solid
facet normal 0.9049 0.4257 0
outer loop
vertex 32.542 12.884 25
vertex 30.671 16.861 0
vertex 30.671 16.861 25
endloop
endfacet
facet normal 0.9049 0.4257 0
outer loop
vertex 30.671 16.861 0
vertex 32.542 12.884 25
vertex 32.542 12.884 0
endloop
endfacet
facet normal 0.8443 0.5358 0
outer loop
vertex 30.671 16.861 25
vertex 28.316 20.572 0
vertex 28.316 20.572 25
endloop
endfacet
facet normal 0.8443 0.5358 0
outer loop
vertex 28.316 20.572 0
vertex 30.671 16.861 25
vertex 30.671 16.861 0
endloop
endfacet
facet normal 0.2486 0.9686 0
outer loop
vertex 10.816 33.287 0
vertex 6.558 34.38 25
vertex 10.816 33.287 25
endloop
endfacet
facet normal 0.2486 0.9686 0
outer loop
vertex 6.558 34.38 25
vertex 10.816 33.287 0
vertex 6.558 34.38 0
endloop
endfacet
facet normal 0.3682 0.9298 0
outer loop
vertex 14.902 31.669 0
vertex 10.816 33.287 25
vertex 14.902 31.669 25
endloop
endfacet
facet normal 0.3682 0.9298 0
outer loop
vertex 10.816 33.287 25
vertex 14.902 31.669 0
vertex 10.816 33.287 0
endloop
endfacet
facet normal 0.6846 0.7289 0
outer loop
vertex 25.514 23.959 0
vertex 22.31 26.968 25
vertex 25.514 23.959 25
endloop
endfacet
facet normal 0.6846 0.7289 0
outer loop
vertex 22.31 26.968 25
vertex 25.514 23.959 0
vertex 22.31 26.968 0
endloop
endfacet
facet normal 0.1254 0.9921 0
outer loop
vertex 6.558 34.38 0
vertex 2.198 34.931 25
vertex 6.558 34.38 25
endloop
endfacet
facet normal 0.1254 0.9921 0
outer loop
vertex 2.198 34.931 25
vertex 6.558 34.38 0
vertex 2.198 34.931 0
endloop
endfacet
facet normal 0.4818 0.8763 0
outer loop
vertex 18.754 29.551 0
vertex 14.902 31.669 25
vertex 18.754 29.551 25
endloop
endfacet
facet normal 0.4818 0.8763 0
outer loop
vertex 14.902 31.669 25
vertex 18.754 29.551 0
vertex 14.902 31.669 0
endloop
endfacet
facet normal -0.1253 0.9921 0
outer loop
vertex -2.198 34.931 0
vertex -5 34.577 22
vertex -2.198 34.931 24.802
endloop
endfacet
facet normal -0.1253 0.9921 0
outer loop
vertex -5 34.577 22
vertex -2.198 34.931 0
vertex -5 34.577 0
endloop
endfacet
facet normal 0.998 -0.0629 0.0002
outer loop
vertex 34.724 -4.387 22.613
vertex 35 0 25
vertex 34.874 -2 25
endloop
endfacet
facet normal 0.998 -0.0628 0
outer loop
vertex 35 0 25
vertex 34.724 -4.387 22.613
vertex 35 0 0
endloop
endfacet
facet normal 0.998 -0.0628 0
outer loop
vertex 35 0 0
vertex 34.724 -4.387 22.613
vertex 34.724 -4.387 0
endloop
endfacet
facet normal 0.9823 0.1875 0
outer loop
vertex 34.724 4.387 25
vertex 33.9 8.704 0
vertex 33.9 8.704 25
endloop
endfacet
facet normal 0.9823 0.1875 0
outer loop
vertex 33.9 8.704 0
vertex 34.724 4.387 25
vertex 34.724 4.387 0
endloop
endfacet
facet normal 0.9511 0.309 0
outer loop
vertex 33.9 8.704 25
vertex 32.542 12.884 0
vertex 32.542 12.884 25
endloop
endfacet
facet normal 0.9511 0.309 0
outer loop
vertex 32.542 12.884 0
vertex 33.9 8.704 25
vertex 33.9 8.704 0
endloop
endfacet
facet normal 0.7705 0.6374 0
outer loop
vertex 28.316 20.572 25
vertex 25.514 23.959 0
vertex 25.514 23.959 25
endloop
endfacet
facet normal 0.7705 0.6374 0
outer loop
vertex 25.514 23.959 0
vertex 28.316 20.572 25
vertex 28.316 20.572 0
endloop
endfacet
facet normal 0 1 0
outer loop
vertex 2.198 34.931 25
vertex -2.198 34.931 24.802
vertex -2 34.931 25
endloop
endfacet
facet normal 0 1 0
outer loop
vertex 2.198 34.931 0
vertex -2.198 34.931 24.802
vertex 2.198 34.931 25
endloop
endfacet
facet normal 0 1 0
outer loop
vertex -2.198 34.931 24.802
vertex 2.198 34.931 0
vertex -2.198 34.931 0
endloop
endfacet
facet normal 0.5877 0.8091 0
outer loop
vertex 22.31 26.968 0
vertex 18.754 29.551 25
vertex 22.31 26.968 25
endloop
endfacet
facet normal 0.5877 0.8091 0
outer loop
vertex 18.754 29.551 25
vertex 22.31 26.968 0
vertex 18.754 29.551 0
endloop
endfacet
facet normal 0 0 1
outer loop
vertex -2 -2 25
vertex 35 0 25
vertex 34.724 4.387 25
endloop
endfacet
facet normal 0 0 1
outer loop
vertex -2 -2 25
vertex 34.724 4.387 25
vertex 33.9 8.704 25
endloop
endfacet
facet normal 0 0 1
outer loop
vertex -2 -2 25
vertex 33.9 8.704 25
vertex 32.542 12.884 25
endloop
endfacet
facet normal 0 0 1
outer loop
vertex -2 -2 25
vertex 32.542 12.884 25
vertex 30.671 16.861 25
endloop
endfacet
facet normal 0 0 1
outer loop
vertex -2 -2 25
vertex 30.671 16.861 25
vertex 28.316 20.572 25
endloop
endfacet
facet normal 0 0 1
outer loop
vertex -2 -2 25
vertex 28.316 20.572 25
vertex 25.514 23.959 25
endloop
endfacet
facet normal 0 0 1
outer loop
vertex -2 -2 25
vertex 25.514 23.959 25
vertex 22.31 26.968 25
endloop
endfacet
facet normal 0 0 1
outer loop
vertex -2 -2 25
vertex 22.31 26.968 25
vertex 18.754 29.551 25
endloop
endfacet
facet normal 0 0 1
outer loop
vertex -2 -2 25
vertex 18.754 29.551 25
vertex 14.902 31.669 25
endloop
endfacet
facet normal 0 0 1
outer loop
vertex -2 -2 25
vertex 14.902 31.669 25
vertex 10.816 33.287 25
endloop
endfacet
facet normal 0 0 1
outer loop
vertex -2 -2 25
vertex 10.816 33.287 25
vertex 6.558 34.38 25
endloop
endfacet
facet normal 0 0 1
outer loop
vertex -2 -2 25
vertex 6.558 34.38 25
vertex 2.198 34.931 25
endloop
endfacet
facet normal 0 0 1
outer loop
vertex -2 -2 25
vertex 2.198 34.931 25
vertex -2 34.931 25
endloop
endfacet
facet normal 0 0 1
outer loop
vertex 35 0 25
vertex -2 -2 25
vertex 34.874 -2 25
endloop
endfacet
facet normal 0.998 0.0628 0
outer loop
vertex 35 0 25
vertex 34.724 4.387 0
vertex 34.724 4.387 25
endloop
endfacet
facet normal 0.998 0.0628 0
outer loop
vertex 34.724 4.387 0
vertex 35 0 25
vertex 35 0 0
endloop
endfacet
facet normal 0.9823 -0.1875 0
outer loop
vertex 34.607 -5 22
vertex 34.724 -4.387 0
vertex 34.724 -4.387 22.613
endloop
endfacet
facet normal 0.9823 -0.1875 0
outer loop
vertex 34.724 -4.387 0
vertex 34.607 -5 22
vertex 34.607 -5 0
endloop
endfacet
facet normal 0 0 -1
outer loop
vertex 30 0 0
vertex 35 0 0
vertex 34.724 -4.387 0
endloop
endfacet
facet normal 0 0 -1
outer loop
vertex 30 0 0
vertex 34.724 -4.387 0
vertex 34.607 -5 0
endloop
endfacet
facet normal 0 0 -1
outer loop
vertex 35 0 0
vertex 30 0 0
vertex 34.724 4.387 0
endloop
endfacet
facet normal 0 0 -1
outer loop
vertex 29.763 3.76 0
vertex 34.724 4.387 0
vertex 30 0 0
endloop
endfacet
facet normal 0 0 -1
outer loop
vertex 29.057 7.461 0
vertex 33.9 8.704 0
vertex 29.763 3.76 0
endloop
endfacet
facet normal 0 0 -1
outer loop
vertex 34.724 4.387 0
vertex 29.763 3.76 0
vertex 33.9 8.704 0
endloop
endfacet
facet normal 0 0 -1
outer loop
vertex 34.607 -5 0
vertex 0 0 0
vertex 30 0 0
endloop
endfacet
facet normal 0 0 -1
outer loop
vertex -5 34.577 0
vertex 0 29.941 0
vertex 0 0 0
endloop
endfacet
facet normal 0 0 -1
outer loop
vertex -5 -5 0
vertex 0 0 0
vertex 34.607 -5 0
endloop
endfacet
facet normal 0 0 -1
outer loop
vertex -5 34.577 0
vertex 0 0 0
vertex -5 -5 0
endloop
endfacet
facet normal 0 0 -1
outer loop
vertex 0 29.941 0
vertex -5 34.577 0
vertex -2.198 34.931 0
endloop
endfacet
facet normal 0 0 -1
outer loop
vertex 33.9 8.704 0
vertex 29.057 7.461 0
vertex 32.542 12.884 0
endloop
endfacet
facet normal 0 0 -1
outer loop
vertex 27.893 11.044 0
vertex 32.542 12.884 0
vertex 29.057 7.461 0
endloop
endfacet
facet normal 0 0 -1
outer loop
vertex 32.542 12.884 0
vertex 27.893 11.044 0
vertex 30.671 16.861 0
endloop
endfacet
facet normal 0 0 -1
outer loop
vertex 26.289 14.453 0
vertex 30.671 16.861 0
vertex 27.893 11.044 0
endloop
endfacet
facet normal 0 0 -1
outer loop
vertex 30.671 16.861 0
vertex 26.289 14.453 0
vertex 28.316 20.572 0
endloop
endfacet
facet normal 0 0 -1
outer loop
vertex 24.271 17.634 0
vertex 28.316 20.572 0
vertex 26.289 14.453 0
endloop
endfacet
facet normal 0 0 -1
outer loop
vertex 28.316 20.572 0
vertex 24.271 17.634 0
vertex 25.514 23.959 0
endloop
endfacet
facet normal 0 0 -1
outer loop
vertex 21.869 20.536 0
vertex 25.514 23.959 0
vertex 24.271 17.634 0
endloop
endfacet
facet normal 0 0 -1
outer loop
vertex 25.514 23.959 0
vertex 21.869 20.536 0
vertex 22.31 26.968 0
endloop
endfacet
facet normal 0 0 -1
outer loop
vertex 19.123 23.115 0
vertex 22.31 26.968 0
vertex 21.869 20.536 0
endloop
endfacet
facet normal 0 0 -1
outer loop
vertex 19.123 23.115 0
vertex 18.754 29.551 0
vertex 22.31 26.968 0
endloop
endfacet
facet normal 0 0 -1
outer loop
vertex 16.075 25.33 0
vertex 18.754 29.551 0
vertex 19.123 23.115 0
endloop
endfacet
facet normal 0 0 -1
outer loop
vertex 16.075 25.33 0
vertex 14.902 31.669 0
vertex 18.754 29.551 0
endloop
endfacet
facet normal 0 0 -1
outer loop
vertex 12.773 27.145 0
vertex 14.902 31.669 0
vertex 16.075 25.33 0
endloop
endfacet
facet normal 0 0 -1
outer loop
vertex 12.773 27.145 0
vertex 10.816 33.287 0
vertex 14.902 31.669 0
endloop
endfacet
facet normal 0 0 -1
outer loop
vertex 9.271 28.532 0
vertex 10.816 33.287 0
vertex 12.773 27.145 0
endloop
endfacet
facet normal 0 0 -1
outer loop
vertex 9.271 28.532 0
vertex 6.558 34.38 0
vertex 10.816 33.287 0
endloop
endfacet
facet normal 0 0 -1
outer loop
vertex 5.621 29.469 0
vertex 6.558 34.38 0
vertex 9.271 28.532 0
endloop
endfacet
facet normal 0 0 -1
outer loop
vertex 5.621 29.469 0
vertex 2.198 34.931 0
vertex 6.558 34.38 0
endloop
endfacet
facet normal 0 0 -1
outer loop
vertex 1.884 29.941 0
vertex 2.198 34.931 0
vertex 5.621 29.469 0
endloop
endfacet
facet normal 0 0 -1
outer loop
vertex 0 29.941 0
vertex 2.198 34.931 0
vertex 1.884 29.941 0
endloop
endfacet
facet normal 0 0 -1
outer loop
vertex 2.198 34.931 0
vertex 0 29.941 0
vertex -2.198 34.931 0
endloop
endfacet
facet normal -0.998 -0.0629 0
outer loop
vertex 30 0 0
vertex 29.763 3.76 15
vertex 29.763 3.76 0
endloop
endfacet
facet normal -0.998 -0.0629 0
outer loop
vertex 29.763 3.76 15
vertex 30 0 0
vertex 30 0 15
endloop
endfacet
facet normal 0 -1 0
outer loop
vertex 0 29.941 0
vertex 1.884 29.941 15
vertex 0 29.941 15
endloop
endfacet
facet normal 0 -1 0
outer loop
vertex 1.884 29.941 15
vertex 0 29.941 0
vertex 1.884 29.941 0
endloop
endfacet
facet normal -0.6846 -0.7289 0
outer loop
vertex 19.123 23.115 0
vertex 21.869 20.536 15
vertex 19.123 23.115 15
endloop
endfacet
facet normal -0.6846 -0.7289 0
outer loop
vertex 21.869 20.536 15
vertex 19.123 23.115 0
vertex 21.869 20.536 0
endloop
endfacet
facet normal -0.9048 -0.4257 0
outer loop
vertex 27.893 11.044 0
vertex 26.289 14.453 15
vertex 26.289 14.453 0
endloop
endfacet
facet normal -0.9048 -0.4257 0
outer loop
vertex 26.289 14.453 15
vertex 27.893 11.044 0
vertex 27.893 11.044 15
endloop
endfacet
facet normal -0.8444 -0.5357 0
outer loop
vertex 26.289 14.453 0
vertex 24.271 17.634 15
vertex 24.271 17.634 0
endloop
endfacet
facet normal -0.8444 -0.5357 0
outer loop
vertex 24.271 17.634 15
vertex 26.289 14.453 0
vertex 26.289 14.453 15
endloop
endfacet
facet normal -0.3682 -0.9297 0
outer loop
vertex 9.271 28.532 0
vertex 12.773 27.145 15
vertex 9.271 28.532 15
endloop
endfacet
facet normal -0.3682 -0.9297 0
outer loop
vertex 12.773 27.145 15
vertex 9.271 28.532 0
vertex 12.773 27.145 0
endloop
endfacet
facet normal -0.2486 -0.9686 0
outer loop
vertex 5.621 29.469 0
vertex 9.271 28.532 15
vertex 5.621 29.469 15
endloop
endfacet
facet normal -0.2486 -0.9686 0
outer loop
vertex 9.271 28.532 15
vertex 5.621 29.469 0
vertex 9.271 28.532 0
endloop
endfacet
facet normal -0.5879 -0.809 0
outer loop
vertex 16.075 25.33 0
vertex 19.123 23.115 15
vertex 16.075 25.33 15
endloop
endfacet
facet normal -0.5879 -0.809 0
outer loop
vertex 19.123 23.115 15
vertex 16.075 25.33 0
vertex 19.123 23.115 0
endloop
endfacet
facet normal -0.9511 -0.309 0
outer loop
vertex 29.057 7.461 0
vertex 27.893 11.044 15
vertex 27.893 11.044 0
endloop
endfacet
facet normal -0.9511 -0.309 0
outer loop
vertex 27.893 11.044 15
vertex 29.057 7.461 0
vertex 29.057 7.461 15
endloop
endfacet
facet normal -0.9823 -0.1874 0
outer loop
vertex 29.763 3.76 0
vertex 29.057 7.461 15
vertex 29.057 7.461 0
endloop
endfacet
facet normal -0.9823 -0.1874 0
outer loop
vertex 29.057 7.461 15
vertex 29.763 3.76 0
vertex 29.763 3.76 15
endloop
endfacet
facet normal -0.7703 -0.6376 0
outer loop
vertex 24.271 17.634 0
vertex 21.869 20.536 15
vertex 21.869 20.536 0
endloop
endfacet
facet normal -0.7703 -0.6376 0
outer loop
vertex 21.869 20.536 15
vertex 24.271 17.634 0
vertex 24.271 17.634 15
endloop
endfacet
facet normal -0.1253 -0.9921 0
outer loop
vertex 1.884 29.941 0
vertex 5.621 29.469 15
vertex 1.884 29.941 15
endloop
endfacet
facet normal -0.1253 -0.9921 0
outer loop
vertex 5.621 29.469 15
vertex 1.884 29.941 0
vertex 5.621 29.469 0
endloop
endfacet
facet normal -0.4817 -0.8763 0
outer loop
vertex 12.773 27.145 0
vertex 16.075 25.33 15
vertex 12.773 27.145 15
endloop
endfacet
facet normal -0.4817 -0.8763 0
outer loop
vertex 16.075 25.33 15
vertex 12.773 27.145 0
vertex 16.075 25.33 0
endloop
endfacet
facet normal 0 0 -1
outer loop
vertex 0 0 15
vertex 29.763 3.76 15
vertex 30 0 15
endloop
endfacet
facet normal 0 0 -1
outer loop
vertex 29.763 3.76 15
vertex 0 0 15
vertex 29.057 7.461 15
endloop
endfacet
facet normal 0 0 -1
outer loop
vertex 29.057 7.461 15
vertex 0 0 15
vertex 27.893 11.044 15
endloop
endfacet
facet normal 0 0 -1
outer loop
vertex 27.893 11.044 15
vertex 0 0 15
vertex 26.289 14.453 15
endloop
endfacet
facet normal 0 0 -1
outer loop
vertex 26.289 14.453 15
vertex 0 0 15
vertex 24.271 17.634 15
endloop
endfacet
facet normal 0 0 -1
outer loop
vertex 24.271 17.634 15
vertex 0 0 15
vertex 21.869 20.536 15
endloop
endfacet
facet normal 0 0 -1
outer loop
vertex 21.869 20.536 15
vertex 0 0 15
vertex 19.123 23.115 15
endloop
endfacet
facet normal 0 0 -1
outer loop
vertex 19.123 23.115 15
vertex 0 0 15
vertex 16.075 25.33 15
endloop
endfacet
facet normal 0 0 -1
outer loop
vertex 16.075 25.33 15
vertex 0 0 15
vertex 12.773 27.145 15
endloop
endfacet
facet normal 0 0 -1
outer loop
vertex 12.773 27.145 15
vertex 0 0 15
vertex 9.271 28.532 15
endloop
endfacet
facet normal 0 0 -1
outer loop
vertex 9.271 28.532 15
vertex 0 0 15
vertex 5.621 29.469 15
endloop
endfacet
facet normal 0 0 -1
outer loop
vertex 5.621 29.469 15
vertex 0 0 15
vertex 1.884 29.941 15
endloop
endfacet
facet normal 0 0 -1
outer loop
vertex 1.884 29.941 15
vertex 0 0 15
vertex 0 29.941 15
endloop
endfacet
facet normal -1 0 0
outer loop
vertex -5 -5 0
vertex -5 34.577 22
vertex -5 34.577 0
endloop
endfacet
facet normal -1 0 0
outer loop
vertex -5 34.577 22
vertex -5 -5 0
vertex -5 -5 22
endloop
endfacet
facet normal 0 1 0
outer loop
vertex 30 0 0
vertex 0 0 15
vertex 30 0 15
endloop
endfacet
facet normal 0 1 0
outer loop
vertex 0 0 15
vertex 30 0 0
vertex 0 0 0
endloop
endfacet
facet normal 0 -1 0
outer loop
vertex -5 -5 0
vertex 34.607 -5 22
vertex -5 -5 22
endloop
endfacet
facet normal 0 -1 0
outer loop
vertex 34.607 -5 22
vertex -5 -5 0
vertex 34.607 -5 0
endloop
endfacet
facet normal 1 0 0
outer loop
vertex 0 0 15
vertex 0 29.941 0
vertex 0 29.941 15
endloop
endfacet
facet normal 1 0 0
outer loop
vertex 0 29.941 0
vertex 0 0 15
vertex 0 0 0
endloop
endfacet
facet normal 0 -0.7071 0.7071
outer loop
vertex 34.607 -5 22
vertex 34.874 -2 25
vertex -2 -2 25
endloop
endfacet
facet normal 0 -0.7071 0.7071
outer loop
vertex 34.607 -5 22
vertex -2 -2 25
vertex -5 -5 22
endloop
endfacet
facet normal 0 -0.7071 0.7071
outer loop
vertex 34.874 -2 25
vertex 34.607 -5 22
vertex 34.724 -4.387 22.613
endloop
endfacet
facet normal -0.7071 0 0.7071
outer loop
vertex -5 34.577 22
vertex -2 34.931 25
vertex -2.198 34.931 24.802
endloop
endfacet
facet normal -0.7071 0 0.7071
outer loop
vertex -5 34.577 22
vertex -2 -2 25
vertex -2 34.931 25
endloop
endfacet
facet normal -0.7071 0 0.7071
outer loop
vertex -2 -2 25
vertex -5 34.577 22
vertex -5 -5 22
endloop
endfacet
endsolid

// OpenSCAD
// batten end cap
// **************************

side      = 30;
sidethick = 5;
endthick = 10;
overlap=15;
$fn=50;


difference () {
    union () {
 //top
       difference () {
       
       translate ([0,0,0]) cylinder(h=overlap+endthick,r=side+sidethick);
       translate ([0,0,0]) cylinder(h=overlap,r=side);
       }
 
 //sides
       
       union () {
       translate ([-sidethick,-sidethick,0]) cube([side+sidethick,sidethick,overlap+endthick]);
       translate ([-sidethick,0,0]) cube([sidethick,side,overlap+endthick]);
       }


 
   }
   
   translate ([-(side+sidethick*2),-sidethick-side,0]) cube([side+sidethick,side*2+sidethick*2,overlap+endthick+5]);

   translate ([-(side+sidethick),-sidethick*2-side,0]) cube([side*2+sidethick*2,side+sidethick,overlap+endthick+5]);

   translate ([-side,-sidethick,overlap+endthick-3]) rotate([45,0,0]) cube([side*3,10,10]);

   translate ([-sidethick,-sidethick,overlap+endthick-3]) rotate([45,0,90]) cube([side*3,10,10]);


}
   
   

   
